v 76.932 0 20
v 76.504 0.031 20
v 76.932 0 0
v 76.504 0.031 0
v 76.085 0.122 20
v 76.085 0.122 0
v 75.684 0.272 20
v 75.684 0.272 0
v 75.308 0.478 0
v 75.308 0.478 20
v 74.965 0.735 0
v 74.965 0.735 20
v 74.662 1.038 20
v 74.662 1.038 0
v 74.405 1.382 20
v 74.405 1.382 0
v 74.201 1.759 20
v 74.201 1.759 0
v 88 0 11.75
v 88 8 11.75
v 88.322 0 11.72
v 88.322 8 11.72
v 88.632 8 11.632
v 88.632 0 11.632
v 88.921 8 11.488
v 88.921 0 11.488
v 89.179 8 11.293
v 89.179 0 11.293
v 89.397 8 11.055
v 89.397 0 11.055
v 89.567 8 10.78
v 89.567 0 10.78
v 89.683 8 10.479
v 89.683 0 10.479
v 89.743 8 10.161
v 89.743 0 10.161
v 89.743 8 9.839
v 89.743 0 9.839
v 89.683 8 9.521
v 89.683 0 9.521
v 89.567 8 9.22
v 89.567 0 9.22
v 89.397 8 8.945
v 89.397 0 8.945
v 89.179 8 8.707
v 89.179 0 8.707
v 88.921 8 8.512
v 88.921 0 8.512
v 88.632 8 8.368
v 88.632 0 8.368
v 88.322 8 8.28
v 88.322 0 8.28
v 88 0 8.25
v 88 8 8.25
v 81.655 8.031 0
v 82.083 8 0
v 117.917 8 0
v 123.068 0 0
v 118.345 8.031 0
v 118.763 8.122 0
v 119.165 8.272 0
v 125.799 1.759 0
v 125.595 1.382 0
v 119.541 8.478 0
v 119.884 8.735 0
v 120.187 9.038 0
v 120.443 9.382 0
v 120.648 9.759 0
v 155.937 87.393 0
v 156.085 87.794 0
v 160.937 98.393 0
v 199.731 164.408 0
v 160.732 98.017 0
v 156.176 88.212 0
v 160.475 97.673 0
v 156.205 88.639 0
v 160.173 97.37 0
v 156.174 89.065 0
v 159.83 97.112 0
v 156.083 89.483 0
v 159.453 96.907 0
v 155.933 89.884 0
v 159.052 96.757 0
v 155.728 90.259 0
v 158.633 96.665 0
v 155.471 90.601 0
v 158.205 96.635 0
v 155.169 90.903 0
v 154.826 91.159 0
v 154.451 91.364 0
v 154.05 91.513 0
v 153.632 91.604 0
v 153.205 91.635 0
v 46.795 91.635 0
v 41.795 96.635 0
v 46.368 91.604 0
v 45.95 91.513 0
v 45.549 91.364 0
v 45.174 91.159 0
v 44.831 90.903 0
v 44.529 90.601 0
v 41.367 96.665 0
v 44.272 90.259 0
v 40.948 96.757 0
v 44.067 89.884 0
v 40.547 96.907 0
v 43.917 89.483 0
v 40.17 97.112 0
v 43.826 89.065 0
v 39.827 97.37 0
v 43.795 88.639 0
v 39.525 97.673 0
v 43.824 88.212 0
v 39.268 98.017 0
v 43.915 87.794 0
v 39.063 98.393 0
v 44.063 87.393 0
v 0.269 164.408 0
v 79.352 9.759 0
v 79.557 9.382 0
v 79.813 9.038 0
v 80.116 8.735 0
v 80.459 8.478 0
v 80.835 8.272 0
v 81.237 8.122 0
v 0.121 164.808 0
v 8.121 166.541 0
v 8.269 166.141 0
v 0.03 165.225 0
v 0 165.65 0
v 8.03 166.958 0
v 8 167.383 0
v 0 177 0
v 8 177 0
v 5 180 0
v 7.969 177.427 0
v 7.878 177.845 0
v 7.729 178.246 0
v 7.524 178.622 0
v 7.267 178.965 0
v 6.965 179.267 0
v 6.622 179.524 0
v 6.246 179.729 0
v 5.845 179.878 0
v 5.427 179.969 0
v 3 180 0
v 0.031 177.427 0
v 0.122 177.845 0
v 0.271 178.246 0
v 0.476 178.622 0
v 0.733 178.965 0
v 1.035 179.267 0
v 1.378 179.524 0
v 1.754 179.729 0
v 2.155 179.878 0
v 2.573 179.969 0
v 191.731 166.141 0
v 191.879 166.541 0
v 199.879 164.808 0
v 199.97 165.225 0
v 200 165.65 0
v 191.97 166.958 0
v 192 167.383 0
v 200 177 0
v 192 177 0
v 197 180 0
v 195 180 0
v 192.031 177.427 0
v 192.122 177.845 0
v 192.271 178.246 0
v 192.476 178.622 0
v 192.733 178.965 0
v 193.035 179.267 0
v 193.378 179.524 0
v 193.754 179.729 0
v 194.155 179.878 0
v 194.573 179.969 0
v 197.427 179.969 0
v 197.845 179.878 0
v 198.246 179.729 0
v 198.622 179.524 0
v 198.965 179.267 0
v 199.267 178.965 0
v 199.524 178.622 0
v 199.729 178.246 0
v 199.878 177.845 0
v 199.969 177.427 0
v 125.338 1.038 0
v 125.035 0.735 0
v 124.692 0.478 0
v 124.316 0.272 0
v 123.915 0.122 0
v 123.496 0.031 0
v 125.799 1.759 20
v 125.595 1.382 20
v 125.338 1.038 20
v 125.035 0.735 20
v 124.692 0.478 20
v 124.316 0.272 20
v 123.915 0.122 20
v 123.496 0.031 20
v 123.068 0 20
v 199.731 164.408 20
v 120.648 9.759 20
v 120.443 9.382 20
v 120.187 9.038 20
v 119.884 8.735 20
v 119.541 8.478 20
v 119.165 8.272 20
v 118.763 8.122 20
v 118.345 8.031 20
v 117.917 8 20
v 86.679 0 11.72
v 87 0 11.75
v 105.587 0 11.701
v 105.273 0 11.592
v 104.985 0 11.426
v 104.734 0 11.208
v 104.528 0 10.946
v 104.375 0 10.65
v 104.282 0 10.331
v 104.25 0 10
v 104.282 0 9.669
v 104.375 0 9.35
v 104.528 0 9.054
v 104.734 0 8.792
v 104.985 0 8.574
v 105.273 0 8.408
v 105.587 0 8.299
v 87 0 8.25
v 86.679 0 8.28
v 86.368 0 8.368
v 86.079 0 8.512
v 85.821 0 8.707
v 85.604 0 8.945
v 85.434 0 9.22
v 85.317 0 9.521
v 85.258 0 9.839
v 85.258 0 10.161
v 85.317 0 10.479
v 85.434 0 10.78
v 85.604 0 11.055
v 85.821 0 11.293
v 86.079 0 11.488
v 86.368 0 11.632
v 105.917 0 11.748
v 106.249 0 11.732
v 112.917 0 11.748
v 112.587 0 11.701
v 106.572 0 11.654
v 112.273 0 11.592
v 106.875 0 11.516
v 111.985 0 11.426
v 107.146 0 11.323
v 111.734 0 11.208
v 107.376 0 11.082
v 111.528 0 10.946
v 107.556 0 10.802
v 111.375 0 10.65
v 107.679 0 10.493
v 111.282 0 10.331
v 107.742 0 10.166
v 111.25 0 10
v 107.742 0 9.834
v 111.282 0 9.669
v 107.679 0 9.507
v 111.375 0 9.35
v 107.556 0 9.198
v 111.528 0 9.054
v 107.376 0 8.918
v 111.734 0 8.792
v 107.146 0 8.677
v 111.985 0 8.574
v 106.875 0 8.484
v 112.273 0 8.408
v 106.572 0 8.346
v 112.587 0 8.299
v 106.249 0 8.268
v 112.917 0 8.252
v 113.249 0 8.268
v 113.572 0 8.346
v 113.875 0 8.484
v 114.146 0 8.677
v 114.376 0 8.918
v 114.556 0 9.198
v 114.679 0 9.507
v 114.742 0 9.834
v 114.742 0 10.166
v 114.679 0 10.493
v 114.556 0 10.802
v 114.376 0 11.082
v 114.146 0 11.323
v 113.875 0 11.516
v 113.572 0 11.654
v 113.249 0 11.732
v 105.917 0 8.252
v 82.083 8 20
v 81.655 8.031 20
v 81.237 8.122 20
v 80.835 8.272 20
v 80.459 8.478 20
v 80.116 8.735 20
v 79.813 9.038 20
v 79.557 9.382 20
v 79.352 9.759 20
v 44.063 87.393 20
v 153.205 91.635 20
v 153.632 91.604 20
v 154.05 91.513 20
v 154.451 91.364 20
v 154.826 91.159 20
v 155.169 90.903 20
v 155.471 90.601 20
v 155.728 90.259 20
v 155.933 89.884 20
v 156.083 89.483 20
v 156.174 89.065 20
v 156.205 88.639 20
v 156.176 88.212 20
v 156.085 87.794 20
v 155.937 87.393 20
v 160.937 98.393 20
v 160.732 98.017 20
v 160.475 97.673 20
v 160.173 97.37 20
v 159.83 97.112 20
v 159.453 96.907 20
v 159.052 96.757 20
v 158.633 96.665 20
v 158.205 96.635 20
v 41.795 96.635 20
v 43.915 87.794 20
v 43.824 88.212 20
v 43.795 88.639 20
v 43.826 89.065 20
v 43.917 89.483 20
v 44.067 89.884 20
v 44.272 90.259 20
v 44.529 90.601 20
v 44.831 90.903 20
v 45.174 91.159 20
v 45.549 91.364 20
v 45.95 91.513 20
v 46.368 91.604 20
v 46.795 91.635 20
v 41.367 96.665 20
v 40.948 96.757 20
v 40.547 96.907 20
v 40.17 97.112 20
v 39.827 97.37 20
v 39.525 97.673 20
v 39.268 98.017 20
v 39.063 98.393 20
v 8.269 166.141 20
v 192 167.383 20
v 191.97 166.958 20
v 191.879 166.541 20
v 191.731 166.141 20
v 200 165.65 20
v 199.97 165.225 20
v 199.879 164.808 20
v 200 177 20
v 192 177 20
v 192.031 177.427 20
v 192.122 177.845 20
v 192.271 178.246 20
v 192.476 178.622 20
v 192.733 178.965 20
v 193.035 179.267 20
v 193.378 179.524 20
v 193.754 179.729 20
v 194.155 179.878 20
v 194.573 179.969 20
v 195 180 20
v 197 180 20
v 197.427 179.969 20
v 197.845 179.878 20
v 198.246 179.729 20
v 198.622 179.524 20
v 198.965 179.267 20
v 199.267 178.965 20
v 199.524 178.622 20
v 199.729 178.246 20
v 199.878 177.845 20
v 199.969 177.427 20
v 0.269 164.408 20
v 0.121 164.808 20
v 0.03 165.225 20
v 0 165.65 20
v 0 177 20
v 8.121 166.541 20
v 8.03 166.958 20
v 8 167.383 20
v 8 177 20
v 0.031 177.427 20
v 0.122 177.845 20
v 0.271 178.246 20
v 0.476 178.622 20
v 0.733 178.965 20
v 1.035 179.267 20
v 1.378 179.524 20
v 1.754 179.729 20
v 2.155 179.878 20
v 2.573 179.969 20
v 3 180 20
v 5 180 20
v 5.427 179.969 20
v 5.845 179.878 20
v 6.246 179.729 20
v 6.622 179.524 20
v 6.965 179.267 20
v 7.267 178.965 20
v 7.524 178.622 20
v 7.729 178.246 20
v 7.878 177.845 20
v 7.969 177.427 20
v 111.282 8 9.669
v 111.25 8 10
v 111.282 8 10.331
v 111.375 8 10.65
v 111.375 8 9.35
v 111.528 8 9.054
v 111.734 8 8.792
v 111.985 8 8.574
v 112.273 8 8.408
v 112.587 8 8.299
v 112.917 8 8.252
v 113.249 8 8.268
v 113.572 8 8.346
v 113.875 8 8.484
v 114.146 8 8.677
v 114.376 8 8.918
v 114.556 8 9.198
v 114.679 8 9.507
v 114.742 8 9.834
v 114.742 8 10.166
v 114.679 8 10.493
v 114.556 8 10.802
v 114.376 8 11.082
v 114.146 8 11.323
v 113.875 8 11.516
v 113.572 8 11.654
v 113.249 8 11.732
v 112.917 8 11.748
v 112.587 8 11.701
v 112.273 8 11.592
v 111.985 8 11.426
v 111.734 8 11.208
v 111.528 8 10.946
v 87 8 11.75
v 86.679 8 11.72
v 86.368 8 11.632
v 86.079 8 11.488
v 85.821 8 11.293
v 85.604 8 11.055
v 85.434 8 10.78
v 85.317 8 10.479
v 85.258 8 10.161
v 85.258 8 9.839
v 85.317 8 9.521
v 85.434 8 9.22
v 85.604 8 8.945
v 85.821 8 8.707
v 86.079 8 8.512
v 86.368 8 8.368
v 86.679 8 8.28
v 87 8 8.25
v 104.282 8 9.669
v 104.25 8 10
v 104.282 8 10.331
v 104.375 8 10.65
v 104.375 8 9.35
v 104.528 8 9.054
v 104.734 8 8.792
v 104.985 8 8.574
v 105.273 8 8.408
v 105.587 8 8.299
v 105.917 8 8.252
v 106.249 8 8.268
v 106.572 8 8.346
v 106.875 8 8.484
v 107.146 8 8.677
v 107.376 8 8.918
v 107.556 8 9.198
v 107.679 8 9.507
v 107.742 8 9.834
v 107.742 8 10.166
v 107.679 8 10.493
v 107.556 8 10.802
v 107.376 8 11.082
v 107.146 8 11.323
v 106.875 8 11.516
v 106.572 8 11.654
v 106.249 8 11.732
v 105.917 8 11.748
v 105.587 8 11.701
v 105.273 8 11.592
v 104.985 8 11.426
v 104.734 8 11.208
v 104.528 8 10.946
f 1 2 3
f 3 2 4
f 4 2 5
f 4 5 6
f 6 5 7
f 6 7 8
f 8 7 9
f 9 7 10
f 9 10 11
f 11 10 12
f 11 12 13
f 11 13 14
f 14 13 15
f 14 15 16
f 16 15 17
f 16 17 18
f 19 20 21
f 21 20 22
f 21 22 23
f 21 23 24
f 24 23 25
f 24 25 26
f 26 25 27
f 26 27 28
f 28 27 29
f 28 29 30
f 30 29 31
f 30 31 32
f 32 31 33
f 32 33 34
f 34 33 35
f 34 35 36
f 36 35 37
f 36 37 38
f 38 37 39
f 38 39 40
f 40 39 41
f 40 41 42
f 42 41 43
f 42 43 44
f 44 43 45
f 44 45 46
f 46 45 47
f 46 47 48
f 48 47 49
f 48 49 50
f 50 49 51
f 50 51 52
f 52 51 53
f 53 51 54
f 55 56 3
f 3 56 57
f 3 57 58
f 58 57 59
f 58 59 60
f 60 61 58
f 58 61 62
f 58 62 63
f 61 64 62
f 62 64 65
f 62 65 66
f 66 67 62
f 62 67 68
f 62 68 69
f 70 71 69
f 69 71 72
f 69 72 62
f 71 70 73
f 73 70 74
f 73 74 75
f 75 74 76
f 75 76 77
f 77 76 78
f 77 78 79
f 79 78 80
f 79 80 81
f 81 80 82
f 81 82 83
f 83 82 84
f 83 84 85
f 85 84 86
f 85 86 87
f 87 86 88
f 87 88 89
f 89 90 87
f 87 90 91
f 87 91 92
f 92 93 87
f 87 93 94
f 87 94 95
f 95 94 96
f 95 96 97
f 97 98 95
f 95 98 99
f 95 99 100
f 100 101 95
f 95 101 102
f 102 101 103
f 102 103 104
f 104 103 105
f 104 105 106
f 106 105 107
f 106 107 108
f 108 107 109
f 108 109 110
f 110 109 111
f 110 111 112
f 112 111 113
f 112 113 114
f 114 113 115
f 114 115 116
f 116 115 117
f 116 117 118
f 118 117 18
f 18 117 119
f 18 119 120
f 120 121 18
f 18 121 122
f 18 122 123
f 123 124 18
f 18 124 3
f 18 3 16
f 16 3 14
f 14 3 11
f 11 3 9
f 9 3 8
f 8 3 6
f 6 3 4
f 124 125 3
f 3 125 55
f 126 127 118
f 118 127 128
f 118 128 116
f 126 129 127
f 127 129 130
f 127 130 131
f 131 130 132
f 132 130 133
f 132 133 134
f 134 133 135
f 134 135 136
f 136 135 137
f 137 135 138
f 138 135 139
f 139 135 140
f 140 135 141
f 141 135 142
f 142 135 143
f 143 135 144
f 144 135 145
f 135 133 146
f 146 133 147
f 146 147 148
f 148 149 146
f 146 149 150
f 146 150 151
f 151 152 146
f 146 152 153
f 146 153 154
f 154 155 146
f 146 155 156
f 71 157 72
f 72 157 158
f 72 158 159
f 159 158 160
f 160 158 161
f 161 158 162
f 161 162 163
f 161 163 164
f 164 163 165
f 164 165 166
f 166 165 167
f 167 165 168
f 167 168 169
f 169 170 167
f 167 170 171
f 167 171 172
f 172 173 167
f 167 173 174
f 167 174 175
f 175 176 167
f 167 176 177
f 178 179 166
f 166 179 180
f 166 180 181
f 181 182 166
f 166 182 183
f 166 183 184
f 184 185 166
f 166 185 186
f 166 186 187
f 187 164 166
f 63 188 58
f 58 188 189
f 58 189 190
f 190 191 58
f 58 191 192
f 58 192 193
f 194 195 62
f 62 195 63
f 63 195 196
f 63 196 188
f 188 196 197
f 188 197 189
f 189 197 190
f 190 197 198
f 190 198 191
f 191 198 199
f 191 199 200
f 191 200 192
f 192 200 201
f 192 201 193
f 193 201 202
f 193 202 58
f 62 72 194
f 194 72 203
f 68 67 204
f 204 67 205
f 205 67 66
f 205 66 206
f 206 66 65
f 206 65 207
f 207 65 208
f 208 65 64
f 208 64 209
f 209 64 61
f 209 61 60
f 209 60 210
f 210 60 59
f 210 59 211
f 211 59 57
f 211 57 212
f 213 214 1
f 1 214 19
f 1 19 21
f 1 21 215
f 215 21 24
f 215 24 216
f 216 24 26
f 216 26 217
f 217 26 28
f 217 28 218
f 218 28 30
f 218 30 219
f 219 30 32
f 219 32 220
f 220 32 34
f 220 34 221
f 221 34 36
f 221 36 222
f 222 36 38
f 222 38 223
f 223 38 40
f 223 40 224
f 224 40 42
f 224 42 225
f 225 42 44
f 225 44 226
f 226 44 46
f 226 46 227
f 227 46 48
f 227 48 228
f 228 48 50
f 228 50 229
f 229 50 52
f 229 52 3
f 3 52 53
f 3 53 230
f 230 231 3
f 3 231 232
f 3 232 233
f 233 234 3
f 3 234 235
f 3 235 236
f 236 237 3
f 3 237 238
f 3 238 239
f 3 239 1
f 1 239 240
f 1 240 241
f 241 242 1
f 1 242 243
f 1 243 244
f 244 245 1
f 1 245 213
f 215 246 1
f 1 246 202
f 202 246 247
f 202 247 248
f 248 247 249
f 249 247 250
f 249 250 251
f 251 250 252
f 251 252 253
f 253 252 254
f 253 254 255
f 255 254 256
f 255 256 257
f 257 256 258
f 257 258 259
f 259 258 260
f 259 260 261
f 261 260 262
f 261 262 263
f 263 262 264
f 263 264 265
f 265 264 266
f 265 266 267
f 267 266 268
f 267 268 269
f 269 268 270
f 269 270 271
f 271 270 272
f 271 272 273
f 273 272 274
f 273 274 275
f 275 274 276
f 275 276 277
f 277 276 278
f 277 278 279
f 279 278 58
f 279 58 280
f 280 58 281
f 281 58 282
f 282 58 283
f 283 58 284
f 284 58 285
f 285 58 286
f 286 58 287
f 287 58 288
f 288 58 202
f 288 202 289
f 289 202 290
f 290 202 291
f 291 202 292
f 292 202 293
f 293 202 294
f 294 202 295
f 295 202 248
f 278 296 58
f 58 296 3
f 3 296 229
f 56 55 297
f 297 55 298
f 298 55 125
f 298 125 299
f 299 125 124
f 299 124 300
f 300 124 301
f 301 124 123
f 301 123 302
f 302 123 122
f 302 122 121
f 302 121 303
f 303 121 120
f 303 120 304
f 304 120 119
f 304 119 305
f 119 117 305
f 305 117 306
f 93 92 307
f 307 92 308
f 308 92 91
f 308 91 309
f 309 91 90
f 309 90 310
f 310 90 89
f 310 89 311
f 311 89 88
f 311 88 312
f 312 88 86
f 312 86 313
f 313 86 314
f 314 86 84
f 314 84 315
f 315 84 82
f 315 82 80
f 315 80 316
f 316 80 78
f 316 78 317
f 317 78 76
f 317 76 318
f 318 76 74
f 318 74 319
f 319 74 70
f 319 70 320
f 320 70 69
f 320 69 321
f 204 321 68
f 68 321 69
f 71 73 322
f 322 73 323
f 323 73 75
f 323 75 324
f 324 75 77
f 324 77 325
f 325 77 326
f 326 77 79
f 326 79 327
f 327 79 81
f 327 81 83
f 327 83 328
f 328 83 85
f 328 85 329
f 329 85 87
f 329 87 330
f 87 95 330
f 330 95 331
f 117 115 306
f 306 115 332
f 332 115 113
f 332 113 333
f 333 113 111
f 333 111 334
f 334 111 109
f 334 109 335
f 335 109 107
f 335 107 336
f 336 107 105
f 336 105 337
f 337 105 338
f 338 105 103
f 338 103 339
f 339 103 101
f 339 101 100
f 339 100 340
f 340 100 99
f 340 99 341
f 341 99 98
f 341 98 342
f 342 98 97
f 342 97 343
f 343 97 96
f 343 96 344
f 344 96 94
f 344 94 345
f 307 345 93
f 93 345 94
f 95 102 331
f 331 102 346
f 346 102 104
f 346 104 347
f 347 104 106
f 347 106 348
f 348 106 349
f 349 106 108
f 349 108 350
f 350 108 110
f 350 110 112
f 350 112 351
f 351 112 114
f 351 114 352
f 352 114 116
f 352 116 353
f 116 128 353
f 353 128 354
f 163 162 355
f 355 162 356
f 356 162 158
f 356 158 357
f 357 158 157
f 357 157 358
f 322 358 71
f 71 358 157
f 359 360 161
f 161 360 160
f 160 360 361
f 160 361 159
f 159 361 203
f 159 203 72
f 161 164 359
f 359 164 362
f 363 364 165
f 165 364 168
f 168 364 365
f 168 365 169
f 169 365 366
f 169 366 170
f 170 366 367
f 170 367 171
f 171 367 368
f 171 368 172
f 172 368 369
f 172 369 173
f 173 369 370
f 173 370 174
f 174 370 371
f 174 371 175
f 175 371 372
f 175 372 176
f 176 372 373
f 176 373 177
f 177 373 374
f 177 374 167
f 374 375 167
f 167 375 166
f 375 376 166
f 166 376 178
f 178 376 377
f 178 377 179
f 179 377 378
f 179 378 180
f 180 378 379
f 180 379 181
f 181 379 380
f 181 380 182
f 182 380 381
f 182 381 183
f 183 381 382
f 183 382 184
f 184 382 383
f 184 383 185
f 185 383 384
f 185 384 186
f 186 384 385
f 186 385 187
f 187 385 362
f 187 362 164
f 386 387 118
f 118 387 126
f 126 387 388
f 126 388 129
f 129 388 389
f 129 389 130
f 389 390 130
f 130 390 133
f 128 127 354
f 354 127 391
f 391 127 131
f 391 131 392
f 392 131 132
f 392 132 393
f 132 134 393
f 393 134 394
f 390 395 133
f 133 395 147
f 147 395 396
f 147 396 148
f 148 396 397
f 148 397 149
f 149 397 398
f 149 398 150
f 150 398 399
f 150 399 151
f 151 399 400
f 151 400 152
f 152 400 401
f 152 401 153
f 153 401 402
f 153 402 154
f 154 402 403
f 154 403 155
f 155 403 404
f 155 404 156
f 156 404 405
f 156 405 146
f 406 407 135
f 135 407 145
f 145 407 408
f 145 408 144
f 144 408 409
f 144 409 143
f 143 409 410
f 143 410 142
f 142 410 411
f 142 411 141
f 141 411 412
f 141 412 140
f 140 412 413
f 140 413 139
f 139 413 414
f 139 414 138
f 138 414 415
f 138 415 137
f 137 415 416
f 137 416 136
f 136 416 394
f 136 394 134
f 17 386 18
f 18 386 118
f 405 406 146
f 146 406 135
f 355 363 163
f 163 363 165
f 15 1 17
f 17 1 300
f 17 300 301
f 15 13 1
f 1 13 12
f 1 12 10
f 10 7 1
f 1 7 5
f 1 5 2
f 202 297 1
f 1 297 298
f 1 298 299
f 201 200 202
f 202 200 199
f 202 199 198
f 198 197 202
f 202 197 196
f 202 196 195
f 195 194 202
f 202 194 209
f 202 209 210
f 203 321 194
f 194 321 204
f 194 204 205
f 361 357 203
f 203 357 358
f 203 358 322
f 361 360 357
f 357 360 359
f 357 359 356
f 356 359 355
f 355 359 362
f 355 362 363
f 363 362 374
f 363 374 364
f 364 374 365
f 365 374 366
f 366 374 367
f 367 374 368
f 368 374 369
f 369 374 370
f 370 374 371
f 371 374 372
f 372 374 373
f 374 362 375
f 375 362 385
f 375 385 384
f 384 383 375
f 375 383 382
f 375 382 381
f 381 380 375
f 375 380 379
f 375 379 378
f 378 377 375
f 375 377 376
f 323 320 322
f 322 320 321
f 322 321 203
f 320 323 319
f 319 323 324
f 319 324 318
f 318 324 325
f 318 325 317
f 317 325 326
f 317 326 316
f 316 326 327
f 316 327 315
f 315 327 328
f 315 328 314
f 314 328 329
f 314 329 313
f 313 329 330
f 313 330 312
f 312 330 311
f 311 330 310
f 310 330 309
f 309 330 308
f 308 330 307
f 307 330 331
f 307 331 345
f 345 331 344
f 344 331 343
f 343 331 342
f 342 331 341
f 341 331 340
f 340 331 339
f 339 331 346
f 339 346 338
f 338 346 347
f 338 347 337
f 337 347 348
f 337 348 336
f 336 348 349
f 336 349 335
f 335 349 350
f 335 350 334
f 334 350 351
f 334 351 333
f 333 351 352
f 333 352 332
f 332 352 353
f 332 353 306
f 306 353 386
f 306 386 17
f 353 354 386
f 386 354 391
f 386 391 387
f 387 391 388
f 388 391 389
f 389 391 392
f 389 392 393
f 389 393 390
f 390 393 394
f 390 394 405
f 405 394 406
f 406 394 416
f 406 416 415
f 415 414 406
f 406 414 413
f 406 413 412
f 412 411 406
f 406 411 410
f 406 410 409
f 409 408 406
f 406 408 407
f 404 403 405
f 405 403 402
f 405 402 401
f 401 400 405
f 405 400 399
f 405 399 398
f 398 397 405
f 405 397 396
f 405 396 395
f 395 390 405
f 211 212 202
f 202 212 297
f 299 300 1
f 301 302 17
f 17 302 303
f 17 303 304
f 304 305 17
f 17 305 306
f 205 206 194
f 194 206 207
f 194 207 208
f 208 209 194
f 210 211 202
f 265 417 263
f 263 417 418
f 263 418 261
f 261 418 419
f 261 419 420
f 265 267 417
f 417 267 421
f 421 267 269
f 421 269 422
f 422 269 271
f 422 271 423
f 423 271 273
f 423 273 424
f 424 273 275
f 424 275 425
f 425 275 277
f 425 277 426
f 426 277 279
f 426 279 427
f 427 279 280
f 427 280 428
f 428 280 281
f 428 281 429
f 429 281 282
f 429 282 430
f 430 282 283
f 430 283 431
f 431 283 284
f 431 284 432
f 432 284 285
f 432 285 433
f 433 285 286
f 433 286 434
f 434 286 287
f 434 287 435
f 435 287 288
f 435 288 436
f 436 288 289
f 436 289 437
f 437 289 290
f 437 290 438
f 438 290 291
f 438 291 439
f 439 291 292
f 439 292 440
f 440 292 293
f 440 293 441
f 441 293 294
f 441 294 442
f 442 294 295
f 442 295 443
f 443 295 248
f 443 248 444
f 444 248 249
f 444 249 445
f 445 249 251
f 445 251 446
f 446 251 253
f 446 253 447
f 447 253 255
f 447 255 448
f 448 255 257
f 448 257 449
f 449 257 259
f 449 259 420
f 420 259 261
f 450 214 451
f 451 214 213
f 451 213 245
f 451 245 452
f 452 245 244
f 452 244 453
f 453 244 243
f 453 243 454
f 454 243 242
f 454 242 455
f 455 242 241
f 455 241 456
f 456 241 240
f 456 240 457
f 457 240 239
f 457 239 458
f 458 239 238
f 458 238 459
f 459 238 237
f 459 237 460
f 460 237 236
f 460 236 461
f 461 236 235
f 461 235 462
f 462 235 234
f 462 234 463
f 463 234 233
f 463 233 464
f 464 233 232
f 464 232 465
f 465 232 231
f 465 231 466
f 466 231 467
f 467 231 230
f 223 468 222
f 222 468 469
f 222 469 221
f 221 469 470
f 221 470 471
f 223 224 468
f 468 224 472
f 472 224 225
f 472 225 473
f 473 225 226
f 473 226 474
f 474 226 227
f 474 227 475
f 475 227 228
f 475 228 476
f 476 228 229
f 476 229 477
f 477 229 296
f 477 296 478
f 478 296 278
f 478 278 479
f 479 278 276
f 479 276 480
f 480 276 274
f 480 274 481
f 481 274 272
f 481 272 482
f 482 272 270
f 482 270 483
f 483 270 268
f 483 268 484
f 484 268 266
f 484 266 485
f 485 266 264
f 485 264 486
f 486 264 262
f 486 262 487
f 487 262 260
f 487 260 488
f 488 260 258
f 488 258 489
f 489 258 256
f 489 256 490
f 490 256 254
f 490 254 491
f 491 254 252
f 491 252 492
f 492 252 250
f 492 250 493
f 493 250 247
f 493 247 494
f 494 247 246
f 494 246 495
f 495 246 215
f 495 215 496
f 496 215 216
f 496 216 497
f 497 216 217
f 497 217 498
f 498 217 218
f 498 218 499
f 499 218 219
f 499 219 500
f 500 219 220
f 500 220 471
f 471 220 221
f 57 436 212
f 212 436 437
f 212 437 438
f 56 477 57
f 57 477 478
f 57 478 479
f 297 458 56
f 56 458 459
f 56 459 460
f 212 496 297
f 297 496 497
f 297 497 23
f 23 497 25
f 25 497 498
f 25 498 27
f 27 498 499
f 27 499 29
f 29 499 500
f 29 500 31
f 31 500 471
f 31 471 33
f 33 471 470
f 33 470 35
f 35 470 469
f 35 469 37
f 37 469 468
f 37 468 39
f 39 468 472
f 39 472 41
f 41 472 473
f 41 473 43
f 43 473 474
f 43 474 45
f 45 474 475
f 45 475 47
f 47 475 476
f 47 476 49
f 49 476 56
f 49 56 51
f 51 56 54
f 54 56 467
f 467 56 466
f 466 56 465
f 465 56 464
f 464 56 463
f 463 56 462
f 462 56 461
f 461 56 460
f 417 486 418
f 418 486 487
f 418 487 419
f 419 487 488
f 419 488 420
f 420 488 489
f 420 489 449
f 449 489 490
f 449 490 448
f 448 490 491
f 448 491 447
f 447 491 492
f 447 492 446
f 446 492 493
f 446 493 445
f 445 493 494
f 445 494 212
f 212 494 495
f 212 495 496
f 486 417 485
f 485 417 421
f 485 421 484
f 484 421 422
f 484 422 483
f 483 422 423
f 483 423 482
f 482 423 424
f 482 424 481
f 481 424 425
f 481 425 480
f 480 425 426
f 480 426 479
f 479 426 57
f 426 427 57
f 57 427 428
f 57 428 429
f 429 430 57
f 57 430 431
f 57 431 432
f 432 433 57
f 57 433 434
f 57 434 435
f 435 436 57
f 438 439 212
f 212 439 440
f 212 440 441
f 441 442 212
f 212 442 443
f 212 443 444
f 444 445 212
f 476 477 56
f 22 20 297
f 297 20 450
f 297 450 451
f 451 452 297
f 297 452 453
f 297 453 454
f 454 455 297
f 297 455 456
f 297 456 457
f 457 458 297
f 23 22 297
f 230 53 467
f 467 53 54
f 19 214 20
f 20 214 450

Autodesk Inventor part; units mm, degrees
ref_plane "YZ Plane" through (0, 0, 0) normal (1, 0, 0) x (0, 1, 0)
ref_plane "XZ Plane" through (0, 0, 0) normal (0, 1, 0) x (-1, 0, 0)
ref_plane "XY Plane" through (0, 0, 0) normal (0, 0, 1) x (1, 0, 0)
sketch "Sketch2" plane through (0, 0, 0) normal (0, 0, 1) x (1, 0, 0)
  line L0 (0, 0) -> (200, 0) construction
  line L1 (200, 0) -> (200, 180) construction
  line L2 (200, 180) -> (0, 180) construction
  line L3 (0, 180) -> (0, 0) construction
  line L4 (0, 0) -> (75, 0) construction
  line L5 (75, 0) -> (125, 0)
  line L6 (125, 0) -> (200, 0) construction
  line L7 (0, 180) -> (0, 165)
  line L8 (200, 180) -> (200, 165)
  line L9 (200, 165) -> (125, 0)
  line L10 (75, 0) -> (0, 165)
  line L11 (0, 180) -> (8, 180)
  line L12 (200, 180) -> (192, 180)
  line L13 (119.8487, 8) -> (80.1513, 8)
  line L14 (8, 166.7329) -> (39.8628, 96.6347)
  line L15 (192, 166.7329) -> (160.1372, 96.6347)
  line L16 (160.1372, 96.6347) -> (39.8628, 96.6347)
  line L17 (8, 166.7329) -> (8, 180)
  line L18 (192, 166.7329) -> (192, 180)
  line L19 (42.1356, 91.6347) -> (80.1513, 8)
  line L20 (157.8644, 91.6347) -> (119.8487, 8)
  line L21 (42.1356, 91.6347) -> (157.8644, 91.6347)
  dimension "d0" = 200
  dimension "d1" = 180
  dimension "d2" = 75
  dimension "d3" = 50
  dimension "d4" = 15
  dimension "d5" = 15
  dimension "d6" = 8
  dimension "d7" = 8
  dimension "d10" = 77
  dimension "d11" = 8
  dimension "d12" = 8
  dimension "d14" = 8
  dimension "d15" = 5
extrude "Extrusion1" add sketch "Sketch2" along normal blind 20
fillet "Fillet1" radius 3 16 edges at (8, 180, 10) (0, 180, 10) (8, 166.7329, 10) (0, 165, 10) (200, 180, 10) (192, 180, 10) (200, 165, 10) (192, 166.7329, 10) (39.8628, 96.6347, 10) (42.1356, 91.6347, 10) (160.1372, 96.6347, 10) (157.8644, 91.6347, 10) (80.1513, 8, 10) (119.8487, 8, 10) (125, 0, 10) (75, 0, 10)
sketch "Sketch5" plane through (46.7946, 91.6347, 20) normal (0, -1, 0) x (1, 0, 0)
  line L0 (106.4109, -20) -> (0, -20) projected
  line L1 (0, -20) -> (0, 0) projected
  point P0 (-46.7946, -20)
  point P1 (40.2055, -10)
  point P2 (41.2055, -10)
  point P3 (59.2055, -10)
  point P4 (66.2055, -10)
  dimension "d39" = 1
  dimension "d40" = 18
  dimension "d41" = 7
  dimension "d42" = 10
  dimension "d43" = 40.2055
hole "Hole1" at (87.0001, 91.6347, 10) at (88.0001, 91.6347, 10) at (106.0001, 91.6347, 10) at (113.0001, 91.6347, 10) direction (0, -1, 0) diameter 3.5 end through all
sketch "Sketch6" plane through (76.9317, 0, 0) normal (0, -1, 0) x (1, 0, 0)
  arc A0 (10.5683, 11.6771) -> (10.5683, 8.3229) centre (10.0683, 10) ccw projected
  line L0 (10.0683, 11.75) -> (11.0683, 11.75)
  line L1 (10.0683, 8.25) -> (11.0683, 8.25)
  arc A1 (10.5683, 8.3229) -> (10.5683, 11.6771) centre (11.0683, 10) ccw projected
  point P0 (-76.9317, 0)
extrude "Extrusion2" cut sketch "Sketch6" against normal blind 8 contours A0 L0 A1 | A0 A1 L1
properties part number "PatasColaTrasera"
